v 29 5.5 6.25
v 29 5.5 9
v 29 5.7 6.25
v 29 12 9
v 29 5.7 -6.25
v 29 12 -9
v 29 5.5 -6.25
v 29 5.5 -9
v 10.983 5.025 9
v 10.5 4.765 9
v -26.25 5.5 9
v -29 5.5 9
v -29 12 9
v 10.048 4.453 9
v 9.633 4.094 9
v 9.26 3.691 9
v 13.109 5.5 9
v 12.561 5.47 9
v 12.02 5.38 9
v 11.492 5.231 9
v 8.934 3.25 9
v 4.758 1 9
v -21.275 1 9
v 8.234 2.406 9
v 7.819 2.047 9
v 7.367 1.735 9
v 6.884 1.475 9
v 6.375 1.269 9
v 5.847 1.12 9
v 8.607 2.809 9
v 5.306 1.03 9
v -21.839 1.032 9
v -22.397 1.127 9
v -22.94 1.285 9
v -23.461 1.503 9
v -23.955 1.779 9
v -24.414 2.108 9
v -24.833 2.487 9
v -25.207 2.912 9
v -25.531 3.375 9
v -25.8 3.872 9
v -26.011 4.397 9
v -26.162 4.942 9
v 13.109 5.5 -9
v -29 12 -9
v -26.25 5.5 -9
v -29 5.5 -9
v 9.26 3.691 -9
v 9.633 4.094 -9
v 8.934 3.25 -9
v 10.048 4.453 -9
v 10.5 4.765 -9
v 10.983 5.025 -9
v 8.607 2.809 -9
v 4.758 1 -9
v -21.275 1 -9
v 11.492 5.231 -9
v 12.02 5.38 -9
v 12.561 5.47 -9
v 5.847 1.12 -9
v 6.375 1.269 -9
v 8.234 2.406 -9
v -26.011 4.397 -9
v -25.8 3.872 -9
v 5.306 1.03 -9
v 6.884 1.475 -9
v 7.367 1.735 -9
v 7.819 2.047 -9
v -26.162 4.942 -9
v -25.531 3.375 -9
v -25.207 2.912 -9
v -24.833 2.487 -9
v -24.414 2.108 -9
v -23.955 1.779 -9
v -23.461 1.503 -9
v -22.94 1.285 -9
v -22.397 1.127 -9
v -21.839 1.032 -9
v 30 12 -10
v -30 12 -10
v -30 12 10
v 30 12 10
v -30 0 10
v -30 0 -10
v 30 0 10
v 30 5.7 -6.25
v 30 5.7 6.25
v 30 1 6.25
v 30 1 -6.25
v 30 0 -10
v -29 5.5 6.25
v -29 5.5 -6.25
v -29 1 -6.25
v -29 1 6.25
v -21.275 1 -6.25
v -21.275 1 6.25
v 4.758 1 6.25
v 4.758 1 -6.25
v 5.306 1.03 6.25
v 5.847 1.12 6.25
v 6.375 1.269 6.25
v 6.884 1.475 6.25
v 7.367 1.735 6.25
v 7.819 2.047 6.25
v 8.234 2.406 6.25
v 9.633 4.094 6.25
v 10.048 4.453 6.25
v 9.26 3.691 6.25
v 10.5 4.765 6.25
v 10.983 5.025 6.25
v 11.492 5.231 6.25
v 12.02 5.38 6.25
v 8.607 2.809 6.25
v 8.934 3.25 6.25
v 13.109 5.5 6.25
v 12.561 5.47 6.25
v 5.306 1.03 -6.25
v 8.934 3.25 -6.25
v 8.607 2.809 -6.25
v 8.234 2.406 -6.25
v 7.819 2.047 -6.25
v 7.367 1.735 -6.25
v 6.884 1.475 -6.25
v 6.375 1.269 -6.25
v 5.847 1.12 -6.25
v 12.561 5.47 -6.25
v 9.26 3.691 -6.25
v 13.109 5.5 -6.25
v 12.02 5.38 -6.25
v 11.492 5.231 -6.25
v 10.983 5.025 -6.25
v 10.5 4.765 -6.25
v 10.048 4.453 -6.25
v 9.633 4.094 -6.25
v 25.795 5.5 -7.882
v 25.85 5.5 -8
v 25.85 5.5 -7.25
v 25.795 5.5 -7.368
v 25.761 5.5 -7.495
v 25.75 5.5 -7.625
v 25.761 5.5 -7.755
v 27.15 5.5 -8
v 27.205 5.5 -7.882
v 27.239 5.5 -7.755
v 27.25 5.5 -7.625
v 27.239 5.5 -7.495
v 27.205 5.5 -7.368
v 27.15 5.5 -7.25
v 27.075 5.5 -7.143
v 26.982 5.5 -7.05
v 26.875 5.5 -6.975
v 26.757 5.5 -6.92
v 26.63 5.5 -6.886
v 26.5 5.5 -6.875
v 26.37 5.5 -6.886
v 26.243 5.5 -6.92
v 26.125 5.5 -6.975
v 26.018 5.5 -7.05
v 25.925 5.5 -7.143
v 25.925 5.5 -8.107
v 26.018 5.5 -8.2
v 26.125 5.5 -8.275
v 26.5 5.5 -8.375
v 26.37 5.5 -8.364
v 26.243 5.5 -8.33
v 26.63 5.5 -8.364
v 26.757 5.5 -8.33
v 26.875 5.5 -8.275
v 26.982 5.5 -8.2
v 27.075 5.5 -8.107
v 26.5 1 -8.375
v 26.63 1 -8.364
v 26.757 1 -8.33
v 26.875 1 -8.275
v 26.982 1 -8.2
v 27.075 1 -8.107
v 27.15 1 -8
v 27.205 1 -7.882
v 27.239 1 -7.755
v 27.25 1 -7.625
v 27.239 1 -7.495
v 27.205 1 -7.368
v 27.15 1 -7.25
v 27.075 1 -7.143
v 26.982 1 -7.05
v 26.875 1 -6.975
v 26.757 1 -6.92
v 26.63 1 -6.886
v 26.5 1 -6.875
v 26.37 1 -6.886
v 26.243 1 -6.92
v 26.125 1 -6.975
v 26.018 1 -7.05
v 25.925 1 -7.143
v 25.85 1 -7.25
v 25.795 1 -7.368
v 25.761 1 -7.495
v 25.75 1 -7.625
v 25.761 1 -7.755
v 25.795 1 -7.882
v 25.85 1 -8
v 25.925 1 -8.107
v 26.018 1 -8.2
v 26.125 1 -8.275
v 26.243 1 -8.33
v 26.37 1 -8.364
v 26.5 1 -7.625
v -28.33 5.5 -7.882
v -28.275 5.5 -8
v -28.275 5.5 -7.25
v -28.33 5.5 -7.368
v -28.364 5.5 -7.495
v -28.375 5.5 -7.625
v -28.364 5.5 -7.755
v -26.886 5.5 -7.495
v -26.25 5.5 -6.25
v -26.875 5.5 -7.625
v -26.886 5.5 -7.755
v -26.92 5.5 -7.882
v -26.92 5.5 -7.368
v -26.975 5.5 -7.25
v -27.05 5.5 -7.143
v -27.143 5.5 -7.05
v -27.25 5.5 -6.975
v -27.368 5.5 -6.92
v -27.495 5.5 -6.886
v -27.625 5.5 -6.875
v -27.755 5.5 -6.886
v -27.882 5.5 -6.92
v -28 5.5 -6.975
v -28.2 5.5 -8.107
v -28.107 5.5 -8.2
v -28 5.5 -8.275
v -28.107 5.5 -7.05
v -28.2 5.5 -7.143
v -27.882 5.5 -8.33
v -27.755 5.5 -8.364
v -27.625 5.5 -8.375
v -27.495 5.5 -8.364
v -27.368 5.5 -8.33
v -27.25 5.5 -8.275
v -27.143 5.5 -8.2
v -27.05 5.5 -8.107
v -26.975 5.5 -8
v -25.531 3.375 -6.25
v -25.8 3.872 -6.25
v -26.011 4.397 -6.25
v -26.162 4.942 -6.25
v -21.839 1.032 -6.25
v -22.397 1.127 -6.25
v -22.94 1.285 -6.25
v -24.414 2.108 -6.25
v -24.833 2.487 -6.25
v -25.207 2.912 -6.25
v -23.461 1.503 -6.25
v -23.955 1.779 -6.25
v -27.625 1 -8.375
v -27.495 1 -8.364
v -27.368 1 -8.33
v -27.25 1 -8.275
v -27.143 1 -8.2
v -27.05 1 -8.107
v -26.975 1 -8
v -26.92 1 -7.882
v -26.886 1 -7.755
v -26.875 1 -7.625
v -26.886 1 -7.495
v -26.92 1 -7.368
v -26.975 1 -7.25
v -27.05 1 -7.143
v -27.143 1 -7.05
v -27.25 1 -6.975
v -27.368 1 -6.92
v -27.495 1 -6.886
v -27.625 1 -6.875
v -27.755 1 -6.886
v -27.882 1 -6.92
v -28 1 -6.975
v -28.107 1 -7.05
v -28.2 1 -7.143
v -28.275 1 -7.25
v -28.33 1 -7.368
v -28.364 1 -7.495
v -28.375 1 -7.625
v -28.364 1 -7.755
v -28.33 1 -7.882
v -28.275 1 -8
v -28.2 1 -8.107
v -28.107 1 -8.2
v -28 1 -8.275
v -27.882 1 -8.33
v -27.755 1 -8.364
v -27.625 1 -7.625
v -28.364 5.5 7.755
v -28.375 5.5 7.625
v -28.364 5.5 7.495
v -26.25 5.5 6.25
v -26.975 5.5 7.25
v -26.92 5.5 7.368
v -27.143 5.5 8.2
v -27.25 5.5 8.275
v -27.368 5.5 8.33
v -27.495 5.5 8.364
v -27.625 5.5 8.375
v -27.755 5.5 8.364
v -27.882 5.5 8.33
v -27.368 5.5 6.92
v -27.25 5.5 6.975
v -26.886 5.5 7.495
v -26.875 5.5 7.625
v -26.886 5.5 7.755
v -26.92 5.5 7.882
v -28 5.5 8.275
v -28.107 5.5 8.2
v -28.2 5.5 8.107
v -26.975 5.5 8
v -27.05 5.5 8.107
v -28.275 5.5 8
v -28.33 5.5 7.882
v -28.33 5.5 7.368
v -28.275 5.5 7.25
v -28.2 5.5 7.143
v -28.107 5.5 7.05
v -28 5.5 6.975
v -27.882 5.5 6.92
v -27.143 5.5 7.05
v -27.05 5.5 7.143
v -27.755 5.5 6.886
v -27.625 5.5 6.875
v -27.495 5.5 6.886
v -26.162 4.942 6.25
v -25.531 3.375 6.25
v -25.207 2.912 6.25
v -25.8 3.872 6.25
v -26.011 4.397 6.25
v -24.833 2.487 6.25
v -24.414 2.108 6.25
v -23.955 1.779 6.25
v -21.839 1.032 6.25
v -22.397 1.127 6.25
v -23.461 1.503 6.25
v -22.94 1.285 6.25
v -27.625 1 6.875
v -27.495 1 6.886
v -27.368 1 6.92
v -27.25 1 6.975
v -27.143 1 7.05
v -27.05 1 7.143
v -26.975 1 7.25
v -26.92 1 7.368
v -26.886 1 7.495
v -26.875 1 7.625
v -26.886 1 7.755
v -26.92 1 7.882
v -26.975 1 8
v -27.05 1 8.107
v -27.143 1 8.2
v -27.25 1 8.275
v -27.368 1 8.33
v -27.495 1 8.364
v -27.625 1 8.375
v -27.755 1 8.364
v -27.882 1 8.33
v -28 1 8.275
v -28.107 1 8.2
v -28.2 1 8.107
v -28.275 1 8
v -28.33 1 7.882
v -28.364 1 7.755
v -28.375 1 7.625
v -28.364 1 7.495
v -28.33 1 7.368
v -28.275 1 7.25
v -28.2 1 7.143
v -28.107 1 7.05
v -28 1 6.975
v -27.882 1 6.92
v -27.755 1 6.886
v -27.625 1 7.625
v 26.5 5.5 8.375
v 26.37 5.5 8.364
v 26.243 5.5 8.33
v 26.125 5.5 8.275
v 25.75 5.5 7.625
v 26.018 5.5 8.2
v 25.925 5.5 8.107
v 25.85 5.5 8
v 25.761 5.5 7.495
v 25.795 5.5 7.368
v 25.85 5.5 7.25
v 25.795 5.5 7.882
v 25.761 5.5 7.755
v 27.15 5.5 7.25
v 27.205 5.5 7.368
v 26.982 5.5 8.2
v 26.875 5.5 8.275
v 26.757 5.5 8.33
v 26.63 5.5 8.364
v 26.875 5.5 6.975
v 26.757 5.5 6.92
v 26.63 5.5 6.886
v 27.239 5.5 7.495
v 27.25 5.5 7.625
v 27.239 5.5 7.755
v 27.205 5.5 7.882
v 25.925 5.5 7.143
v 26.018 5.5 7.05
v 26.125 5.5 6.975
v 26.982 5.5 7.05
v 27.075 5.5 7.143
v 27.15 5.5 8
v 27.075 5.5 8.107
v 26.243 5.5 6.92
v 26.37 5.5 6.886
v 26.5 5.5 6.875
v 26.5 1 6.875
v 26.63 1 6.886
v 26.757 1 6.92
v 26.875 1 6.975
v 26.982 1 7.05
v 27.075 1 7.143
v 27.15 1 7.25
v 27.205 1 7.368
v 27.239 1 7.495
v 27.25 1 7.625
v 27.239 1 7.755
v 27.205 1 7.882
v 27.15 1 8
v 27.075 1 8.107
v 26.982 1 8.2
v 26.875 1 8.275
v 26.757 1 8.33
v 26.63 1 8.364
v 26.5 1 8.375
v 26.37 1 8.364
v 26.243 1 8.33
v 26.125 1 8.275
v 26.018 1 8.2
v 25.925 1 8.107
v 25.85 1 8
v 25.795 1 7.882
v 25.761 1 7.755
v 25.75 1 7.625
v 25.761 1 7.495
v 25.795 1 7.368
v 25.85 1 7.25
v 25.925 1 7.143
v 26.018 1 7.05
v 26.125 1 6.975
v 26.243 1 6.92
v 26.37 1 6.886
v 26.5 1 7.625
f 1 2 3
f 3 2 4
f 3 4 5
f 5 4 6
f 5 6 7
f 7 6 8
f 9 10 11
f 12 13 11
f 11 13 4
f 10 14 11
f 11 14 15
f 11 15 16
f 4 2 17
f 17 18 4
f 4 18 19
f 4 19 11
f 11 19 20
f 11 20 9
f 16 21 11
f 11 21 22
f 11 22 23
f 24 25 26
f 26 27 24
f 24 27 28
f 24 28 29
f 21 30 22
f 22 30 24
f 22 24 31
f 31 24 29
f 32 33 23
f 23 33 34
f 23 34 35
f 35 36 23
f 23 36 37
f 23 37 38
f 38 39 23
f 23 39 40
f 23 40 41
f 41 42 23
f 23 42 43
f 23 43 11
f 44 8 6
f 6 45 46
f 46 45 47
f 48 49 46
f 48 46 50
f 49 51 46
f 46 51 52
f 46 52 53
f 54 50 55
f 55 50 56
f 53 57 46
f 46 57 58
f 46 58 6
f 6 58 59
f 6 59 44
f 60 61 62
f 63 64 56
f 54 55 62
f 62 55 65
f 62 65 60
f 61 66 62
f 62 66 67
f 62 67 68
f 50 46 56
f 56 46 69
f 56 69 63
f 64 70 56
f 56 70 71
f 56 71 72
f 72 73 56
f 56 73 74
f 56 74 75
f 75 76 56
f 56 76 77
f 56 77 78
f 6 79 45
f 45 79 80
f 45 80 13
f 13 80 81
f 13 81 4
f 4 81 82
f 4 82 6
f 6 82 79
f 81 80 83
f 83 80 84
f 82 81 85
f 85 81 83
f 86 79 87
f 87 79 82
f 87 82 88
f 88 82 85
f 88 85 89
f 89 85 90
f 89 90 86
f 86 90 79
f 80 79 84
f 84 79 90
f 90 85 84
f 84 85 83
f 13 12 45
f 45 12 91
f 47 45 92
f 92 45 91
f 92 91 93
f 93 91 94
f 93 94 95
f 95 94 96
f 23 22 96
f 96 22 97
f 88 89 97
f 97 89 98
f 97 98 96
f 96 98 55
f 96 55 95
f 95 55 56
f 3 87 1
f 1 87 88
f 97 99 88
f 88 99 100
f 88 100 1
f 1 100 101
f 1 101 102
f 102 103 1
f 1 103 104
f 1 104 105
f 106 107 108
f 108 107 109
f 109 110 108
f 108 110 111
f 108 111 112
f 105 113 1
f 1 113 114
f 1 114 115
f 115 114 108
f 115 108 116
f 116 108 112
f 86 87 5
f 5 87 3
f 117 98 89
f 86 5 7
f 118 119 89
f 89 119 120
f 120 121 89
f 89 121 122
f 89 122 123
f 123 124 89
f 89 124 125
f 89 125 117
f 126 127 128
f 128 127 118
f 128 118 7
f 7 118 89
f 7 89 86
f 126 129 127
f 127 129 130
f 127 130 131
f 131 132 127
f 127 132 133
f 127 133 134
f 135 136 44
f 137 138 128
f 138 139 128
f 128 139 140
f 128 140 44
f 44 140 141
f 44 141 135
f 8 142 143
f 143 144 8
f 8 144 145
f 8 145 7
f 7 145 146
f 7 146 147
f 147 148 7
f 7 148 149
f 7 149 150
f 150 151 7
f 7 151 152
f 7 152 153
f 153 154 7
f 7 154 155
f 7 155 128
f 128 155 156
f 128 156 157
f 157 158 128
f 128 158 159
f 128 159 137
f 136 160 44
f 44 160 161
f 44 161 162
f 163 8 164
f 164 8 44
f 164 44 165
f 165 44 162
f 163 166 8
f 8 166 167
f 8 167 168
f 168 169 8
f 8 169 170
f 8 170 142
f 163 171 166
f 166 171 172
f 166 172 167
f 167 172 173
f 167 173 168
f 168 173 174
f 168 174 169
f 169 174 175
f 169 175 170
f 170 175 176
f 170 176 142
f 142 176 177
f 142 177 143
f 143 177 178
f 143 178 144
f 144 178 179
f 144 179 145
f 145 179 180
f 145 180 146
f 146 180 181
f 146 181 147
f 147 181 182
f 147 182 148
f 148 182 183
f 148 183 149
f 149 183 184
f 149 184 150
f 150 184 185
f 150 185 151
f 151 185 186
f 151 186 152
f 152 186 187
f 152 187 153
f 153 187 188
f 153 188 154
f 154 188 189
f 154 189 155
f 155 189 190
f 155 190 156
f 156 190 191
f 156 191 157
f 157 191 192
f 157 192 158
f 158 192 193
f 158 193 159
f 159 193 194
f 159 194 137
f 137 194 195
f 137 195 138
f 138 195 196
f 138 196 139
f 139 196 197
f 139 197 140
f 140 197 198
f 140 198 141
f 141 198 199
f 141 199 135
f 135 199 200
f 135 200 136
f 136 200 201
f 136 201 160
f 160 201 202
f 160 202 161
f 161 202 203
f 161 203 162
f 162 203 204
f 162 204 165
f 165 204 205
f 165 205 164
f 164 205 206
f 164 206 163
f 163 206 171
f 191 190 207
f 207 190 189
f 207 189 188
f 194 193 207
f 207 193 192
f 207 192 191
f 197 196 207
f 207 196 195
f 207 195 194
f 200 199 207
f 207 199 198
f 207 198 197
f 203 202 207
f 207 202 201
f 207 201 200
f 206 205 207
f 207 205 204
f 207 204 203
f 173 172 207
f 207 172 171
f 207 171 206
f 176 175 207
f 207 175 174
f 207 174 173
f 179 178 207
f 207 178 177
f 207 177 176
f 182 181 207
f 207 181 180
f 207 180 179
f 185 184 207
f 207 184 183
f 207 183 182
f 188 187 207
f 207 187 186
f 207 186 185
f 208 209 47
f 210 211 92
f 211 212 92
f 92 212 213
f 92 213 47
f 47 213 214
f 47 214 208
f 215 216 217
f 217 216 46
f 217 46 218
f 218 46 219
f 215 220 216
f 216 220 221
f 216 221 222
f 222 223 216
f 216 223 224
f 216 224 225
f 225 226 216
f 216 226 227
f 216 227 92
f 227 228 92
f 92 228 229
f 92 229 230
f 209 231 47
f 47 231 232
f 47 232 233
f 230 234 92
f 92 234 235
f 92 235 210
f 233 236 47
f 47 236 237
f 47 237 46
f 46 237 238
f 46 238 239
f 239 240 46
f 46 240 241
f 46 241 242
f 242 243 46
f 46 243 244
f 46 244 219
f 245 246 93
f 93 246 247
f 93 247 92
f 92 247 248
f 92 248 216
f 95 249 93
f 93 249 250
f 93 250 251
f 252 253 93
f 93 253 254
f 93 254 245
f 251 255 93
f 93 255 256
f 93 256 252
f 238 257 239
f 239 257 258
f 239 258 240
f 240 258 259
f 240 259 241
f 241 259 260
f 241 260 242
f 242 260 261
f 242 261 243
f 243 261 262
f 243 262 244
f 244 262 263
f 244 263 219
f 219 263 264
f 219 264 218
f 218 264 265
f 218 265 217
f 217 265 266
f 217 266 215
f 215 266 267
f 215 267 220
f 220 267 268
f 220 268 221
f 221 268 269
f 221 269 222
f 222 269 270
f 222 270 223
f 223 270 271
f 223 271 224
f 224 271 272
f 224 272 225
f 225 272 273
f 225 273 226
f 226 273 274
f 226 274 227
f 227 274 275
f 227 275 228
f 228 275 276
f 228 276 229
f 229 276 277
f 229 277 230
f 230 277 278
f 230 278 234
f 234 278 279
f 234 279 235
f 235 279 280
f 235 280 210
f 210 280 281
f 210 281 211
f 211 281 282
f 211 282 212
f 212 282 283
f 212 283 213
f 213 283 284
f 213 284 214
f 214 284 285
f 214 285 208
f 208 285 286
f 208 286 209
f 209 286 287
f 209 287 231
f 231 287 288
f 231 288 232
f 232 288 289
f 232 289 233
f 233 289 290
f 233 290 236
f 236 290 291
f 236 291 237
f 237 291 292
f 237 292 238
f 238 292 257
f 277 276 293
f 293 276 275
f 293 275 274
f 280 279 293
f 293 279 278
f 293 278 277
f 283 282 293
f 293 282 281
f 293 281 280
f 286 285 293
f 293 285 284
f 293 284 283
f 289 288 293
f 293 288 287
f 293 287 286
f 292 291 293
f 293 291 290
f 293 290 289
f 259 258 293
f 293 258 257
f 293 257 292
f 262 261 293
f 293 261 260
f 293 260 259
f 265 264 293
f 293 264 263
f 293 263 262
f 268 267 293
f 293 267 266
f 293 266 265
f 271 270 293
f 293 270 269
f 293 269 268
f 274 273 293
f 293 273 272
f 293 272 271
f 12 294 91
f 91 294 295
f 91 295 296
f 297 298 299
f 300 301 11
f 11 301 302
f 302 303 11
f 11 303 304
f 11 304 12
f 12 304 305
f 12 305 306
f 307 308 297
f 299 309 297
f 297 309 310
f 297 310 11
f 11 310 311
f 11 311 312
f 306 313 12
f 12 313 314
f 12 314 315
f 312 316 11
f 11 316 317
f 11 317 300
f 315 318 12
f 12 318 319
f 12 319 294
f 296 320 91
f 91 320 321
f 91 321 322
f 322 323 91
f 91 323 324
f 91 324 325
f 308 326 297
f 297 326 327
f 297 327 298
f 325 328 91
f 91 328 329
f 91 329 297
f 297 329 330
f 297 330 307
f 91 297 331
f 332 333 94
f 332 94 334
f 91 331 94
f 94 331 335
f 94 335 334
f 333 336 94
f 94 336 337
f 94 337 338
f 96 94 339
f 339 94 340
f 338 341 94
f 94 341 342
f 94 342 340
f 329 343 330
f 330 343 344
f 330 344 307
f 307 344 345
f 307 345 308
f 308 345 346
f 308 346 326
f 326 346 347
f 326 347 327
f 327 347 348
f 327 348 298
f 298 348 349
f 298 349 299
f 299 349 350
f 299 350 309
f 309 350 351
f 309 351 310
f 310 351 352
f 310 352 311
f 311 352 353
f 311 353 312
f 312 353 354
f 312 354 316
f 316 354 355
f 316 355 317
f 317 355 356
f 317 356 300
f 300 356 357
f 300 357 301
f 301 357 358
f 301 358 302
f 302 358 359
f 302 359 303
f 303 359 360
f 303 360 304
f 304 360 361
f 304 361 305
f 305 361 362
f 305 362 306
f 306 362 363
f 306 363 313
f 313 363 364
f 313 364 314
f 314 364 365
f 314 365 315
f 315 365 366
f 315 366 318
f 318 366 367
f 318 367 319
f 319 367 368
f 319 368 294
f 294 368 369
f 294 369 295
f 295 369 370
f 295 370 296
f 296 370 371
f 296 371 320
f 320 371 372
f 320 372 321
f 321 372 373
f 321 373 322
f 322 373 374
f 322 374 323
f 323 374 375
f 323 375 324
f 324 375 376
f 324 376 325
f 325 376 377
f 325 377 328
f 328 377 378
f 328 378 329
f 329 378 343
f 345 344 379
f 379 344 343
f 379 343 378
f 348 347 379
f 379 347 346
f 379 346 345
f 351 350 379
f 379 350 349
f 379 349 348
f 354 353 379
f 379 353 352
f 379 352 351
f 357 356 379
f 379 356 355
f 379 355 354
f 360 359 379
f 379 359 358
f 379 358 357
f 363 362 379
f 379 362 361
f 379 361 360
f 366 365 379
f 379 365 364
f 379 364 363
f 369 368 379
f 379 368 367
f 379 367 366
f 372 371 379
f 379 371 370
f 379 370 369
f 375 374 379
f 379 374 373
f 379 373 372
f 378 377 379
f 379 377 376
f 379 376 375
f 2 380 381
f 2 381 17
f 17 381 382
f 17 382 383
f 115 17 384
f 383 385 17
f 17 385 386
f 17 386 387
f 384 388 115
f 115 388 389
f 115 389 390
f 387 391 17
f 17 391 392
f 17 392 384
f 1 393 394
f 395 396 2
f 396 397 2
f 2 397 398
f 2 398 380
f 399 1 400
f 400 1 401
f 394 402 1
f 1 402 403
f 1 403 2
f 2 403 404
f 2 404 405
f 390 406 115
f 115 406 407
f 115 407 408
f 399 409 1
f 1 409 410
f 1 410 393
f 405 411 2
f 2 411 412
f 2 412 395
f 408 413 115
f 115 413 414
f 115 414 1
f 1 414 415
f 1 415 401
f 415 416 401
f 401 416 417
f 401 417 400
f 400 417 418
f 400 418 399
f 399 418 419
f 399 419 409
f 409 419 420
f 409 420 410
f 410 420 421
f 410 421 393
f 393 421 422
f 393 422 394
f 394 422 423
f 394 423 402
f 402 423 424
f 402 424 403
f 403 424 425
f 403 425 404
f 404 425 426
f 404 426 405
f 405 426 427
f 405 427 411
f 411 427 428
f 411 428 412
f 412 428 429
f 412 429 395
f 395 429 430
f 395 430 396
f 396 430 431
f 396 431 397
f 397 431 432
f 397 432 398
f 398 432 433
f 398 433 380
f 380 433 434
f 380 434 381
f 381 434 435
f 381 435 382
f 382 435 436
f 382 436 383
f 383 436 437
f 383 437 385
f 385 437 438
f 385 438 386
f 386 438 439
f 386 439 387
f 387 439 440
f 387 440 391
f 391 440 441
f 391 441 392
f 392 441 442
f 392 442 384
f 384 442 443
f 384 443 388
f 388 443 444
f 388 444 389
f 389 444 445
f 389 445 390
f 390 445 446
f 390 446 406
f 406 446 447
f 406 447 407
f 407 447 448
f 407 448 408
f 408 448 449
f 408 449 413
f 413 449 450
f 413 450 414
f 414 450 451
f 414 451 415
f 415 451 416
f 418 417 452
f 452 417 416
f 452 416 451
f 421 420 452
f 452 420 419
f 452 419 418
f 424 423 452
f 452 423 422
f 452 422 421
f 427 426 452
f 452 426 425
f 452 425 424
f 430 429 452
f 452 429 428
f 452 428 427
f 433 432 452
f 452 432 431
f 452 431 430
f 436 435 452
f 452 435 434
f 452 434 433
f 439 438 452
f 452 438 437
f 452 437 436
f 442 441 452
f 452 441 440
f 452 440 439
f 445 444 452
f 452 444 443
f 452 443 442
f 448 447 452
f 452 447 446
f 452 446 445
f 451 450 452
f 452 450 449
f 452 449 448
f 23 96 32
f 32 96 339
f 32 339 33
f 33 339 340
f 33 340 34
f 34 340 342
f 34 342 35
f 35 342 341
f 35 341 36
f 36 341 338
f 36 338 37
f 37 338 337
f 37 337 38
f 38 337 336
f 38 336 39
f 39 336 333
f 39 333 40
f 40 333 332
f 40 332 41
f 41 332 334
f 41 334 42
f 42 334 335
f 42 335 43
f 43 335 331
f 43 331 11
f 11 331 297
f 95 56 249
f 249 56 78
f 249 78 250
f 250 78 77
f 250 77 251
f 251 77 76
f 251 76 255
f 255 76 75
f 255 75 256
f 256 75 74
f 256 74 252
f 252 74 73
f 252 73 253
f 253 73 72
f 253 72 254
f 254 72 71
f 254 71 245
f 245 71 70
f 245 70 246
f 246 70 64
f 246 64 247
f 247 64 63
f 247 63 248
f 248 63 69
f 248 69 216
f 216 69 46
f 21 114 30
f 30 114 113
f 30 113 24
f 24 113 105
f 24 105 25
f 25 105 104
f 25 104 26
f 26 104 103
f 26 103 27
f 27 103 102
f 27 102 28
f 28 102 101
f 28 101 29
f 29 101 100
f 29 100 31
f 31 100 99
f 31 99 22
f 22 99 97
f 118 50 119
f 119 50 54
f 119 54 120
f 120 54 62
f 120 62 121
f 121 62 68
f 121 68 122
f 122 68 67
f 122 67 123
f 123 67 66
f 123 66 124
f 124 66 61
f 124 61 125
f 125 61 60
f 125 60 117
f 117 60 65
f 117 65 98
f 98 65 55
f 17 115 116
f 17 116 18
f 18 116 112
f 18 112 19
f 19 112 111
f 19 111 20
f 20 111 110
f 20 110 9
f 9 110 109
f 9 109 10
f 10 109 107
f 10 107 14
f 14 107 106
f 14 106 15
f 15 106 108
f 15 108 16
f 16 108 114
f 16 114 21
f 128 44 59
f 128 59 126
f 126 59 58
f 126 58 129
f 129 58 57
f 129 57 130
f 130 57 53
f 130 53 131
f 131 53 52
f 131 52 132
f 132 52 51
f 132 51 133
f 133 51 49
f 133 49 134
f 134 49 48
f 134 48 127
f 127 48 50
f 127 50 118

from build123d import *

# Parameters (mm, degrees)
SKETCH1_W           = 60
SKETCH1_H           = 20
BOSS_EXTRUDE1_DEPTH = 12
SHELL1_T            = -1
SKETCH2_W           = 12.5
SKETCH2_H           = 4.7
CUT_EXTRUDE1_DEPTH  = 12
SKETCH3_W           = 19.267308131
SKETCH3_H           = 2.75
SKETCH3_R           = 0.75
SKETCH3_W_2         = 2.75
BOSS_EXTRUDE2_DEPTH = 4.5
FILLET1_R           = 5
FILLET2_R           = 5


with BuildPart() as part:
    # Sketch1 → Boss-Extrude1 (new body)
    with BuildSketch(Plane(origin=(0, 0, 0), x_dir=(1, 0, 0), z_dir=(0, 1, 0))):
        Rectangle(SKETCH1_W, SKETCH1_H)
    extrude(amount=BOSS_EXTRUDE1_DEPTH)

    # Shell1
    shell1_openings = [part.faces().sort_by_distance(p)[0] for p in [
        (0, 12, 0),
    ]]
    offset(amount=SHELL1_T, openings=shell1_openings, kind=Kind.INTERSECTION)

    # Sketch2 → Cut-Extrude1 (cut)
    with BuildSketch(Plane(origin=(30, 0, 0), x_dir=(0, 0, -1), z_dir=(1, 0, 0))):
        with Locations((0, 3.35)):
            Rectangle(SKETCH2_W, SKETCH2_H)
    extrude(amount=-CUT_EXTRUDE1_DEPTH, mode=Mode.SUBTRACT)

    # Sketch3 → Boss-Extrude2 (add)
    # profile 1 of 4: a face of its own
    with BuildSketch(Plane(origin=(0, 1, 0), x_dir=(1, 0, 0), z_dir=(0, 1, 0))):
        with Locations((19.366345935, 7.625)):
            Rectangle(SKETCH3_W, SKETCH3_H)
        with Locations(Location((26.5, 7.625, 0), (0, 0, 270))):
            Circle(SKETCH3_R, mode=Mode.SUBTRACT)
    # profile 2 of 4: a face of its own
    with BuildSketch(Plane(origin=(0, 1, 0), x_dir=(1, 0, 0), z_dir=(0, 1, 0))):
        with Locations((-27.625, 7.625)):
            Rectangle(SKETCH3_W_2, SKETCH3_H)
        with Locations(Location((-27.625, 7.625, 0), (0, 0, 270))):
            Circle(SKETCH3_R, mode=Mode.SUBTRACT)
    # profile 3 of 4: a face of its own
    with BuildSketch(Plane(origin=(0, 1, 0), x_dir=(1, 0, 0), z_dir=(0, 1, 0))):
        with Locations((-27.625, -7.625)):
            Rectangle(SKETCH3_W_2, SKETCH3_H)
        with Locations(Location((-27.625, -7.625, 0), (0, 0, 90))):
            Circle(SKETCH3_R, mode=Mode.SUBTRACT)
    # profile 4 of 4: a face of its own
    with BuildSketch(Plane(origin=(0, 1, 0), x_dir=(1, 0, 0), z_dir=(0, 1, 0))):
        with Locations((19.366345935, -7.625)):
            Rectangle(SKETCH3_W, SKETCH3_H)
        with Locations(Location((26.5, -7.625, 0), (0, 0, 90))):
            Circle(SKETCH3_R, mode=Mode.SUBTRACT)
    extrude(amount=BOSS_EXTRUDE2_DEPTH)

    # Fillet1
    # the kernel refuses this fillet: 5 mm, written as the material it adds along each edge
    with BuildSketch(Plane(origin=(-26.25, 1, 9), x_dir=(1, 0, 0), z_dir=(0, 0, -1))) as fillet1_piece_1:
        with BuildLine():
            CenterArc((4.974937186, -5), FILLET1_R, 90, 84.260829523)
            Line((0, -4.5), (-0.099498744, -4.49))
            ThreePointArc((-0.099498744, -4.49), (-0.1, -2.25), (-0.1, 0))
            Line((-0.1, 0), (0, 0.1))
            Line((0, 0.1), (4.974937186, 0.1))
            Line((4.974937186, 0.1), (4.974937186, 0))
        make_face()
    extrude(amount=2.75)
    with BuildSketch(Plane(origin=(-26.25, 1, -9), x_dir=(1, 0, 0), z_dir=(0, 0, 1)), Plane(origin=(9.732691869, 1, 9), x_dir=(-1, 0, 0), z_dir=(0, 0, -1))) as fillet1_piece_2:
        with BuildLine():
            CenterArc((4.974937186, 5), FILLET1_R, 185.739170477, 84.260829523)
            Line((0, 4.5), (-0.099498744, 4.49))
            ThreePointArc((-0.099498744, 4.49), (-0.1, 2.25), (-0.1, 0))
            Line((-0.1, 0), (0, -0.1))
            Line((0, -0.1), (4.974937186, -0.1))
            Line((4.974937186, -0.1), (4.974937186, 0))
        make_face()
    extrude(amount=2.75)
    with BuildSketch(Plane(origin=(9.732691869, 1, -9), x_dir=(0, 1, 0), z_dir=(0, 0, 1))) as fillet1_piece_3:
        with BuildLine():
            CenterArc((5, 4.974937186), FILLET1_R, 180, 84.260829523)
            Line((0, 4.974937186), (-0.1, 4.974937186))
            Line((-0.1, 4.974937186), (-0.1, 0))
            Line((-0.1, 0), (0, -0.1))
            ThreePointArc((0, -0.1), (2.25, -0.1), (4.49, -0.099498744))
            Line((4.49, -0.099498744), (4.5, 0))
        make_face()
    extrude(amount=2.75)

    # Fillet2
    fillet2_edges = [part.edges().sort_by_distance(p)[0] for p in [
        (9.732691869, 5.5, -7.625),
        (9.732691869, 5.5, 7.625),
    ]]
    fillet(fillet2_edges, radius=FILLET2_R)


solid = part.part
